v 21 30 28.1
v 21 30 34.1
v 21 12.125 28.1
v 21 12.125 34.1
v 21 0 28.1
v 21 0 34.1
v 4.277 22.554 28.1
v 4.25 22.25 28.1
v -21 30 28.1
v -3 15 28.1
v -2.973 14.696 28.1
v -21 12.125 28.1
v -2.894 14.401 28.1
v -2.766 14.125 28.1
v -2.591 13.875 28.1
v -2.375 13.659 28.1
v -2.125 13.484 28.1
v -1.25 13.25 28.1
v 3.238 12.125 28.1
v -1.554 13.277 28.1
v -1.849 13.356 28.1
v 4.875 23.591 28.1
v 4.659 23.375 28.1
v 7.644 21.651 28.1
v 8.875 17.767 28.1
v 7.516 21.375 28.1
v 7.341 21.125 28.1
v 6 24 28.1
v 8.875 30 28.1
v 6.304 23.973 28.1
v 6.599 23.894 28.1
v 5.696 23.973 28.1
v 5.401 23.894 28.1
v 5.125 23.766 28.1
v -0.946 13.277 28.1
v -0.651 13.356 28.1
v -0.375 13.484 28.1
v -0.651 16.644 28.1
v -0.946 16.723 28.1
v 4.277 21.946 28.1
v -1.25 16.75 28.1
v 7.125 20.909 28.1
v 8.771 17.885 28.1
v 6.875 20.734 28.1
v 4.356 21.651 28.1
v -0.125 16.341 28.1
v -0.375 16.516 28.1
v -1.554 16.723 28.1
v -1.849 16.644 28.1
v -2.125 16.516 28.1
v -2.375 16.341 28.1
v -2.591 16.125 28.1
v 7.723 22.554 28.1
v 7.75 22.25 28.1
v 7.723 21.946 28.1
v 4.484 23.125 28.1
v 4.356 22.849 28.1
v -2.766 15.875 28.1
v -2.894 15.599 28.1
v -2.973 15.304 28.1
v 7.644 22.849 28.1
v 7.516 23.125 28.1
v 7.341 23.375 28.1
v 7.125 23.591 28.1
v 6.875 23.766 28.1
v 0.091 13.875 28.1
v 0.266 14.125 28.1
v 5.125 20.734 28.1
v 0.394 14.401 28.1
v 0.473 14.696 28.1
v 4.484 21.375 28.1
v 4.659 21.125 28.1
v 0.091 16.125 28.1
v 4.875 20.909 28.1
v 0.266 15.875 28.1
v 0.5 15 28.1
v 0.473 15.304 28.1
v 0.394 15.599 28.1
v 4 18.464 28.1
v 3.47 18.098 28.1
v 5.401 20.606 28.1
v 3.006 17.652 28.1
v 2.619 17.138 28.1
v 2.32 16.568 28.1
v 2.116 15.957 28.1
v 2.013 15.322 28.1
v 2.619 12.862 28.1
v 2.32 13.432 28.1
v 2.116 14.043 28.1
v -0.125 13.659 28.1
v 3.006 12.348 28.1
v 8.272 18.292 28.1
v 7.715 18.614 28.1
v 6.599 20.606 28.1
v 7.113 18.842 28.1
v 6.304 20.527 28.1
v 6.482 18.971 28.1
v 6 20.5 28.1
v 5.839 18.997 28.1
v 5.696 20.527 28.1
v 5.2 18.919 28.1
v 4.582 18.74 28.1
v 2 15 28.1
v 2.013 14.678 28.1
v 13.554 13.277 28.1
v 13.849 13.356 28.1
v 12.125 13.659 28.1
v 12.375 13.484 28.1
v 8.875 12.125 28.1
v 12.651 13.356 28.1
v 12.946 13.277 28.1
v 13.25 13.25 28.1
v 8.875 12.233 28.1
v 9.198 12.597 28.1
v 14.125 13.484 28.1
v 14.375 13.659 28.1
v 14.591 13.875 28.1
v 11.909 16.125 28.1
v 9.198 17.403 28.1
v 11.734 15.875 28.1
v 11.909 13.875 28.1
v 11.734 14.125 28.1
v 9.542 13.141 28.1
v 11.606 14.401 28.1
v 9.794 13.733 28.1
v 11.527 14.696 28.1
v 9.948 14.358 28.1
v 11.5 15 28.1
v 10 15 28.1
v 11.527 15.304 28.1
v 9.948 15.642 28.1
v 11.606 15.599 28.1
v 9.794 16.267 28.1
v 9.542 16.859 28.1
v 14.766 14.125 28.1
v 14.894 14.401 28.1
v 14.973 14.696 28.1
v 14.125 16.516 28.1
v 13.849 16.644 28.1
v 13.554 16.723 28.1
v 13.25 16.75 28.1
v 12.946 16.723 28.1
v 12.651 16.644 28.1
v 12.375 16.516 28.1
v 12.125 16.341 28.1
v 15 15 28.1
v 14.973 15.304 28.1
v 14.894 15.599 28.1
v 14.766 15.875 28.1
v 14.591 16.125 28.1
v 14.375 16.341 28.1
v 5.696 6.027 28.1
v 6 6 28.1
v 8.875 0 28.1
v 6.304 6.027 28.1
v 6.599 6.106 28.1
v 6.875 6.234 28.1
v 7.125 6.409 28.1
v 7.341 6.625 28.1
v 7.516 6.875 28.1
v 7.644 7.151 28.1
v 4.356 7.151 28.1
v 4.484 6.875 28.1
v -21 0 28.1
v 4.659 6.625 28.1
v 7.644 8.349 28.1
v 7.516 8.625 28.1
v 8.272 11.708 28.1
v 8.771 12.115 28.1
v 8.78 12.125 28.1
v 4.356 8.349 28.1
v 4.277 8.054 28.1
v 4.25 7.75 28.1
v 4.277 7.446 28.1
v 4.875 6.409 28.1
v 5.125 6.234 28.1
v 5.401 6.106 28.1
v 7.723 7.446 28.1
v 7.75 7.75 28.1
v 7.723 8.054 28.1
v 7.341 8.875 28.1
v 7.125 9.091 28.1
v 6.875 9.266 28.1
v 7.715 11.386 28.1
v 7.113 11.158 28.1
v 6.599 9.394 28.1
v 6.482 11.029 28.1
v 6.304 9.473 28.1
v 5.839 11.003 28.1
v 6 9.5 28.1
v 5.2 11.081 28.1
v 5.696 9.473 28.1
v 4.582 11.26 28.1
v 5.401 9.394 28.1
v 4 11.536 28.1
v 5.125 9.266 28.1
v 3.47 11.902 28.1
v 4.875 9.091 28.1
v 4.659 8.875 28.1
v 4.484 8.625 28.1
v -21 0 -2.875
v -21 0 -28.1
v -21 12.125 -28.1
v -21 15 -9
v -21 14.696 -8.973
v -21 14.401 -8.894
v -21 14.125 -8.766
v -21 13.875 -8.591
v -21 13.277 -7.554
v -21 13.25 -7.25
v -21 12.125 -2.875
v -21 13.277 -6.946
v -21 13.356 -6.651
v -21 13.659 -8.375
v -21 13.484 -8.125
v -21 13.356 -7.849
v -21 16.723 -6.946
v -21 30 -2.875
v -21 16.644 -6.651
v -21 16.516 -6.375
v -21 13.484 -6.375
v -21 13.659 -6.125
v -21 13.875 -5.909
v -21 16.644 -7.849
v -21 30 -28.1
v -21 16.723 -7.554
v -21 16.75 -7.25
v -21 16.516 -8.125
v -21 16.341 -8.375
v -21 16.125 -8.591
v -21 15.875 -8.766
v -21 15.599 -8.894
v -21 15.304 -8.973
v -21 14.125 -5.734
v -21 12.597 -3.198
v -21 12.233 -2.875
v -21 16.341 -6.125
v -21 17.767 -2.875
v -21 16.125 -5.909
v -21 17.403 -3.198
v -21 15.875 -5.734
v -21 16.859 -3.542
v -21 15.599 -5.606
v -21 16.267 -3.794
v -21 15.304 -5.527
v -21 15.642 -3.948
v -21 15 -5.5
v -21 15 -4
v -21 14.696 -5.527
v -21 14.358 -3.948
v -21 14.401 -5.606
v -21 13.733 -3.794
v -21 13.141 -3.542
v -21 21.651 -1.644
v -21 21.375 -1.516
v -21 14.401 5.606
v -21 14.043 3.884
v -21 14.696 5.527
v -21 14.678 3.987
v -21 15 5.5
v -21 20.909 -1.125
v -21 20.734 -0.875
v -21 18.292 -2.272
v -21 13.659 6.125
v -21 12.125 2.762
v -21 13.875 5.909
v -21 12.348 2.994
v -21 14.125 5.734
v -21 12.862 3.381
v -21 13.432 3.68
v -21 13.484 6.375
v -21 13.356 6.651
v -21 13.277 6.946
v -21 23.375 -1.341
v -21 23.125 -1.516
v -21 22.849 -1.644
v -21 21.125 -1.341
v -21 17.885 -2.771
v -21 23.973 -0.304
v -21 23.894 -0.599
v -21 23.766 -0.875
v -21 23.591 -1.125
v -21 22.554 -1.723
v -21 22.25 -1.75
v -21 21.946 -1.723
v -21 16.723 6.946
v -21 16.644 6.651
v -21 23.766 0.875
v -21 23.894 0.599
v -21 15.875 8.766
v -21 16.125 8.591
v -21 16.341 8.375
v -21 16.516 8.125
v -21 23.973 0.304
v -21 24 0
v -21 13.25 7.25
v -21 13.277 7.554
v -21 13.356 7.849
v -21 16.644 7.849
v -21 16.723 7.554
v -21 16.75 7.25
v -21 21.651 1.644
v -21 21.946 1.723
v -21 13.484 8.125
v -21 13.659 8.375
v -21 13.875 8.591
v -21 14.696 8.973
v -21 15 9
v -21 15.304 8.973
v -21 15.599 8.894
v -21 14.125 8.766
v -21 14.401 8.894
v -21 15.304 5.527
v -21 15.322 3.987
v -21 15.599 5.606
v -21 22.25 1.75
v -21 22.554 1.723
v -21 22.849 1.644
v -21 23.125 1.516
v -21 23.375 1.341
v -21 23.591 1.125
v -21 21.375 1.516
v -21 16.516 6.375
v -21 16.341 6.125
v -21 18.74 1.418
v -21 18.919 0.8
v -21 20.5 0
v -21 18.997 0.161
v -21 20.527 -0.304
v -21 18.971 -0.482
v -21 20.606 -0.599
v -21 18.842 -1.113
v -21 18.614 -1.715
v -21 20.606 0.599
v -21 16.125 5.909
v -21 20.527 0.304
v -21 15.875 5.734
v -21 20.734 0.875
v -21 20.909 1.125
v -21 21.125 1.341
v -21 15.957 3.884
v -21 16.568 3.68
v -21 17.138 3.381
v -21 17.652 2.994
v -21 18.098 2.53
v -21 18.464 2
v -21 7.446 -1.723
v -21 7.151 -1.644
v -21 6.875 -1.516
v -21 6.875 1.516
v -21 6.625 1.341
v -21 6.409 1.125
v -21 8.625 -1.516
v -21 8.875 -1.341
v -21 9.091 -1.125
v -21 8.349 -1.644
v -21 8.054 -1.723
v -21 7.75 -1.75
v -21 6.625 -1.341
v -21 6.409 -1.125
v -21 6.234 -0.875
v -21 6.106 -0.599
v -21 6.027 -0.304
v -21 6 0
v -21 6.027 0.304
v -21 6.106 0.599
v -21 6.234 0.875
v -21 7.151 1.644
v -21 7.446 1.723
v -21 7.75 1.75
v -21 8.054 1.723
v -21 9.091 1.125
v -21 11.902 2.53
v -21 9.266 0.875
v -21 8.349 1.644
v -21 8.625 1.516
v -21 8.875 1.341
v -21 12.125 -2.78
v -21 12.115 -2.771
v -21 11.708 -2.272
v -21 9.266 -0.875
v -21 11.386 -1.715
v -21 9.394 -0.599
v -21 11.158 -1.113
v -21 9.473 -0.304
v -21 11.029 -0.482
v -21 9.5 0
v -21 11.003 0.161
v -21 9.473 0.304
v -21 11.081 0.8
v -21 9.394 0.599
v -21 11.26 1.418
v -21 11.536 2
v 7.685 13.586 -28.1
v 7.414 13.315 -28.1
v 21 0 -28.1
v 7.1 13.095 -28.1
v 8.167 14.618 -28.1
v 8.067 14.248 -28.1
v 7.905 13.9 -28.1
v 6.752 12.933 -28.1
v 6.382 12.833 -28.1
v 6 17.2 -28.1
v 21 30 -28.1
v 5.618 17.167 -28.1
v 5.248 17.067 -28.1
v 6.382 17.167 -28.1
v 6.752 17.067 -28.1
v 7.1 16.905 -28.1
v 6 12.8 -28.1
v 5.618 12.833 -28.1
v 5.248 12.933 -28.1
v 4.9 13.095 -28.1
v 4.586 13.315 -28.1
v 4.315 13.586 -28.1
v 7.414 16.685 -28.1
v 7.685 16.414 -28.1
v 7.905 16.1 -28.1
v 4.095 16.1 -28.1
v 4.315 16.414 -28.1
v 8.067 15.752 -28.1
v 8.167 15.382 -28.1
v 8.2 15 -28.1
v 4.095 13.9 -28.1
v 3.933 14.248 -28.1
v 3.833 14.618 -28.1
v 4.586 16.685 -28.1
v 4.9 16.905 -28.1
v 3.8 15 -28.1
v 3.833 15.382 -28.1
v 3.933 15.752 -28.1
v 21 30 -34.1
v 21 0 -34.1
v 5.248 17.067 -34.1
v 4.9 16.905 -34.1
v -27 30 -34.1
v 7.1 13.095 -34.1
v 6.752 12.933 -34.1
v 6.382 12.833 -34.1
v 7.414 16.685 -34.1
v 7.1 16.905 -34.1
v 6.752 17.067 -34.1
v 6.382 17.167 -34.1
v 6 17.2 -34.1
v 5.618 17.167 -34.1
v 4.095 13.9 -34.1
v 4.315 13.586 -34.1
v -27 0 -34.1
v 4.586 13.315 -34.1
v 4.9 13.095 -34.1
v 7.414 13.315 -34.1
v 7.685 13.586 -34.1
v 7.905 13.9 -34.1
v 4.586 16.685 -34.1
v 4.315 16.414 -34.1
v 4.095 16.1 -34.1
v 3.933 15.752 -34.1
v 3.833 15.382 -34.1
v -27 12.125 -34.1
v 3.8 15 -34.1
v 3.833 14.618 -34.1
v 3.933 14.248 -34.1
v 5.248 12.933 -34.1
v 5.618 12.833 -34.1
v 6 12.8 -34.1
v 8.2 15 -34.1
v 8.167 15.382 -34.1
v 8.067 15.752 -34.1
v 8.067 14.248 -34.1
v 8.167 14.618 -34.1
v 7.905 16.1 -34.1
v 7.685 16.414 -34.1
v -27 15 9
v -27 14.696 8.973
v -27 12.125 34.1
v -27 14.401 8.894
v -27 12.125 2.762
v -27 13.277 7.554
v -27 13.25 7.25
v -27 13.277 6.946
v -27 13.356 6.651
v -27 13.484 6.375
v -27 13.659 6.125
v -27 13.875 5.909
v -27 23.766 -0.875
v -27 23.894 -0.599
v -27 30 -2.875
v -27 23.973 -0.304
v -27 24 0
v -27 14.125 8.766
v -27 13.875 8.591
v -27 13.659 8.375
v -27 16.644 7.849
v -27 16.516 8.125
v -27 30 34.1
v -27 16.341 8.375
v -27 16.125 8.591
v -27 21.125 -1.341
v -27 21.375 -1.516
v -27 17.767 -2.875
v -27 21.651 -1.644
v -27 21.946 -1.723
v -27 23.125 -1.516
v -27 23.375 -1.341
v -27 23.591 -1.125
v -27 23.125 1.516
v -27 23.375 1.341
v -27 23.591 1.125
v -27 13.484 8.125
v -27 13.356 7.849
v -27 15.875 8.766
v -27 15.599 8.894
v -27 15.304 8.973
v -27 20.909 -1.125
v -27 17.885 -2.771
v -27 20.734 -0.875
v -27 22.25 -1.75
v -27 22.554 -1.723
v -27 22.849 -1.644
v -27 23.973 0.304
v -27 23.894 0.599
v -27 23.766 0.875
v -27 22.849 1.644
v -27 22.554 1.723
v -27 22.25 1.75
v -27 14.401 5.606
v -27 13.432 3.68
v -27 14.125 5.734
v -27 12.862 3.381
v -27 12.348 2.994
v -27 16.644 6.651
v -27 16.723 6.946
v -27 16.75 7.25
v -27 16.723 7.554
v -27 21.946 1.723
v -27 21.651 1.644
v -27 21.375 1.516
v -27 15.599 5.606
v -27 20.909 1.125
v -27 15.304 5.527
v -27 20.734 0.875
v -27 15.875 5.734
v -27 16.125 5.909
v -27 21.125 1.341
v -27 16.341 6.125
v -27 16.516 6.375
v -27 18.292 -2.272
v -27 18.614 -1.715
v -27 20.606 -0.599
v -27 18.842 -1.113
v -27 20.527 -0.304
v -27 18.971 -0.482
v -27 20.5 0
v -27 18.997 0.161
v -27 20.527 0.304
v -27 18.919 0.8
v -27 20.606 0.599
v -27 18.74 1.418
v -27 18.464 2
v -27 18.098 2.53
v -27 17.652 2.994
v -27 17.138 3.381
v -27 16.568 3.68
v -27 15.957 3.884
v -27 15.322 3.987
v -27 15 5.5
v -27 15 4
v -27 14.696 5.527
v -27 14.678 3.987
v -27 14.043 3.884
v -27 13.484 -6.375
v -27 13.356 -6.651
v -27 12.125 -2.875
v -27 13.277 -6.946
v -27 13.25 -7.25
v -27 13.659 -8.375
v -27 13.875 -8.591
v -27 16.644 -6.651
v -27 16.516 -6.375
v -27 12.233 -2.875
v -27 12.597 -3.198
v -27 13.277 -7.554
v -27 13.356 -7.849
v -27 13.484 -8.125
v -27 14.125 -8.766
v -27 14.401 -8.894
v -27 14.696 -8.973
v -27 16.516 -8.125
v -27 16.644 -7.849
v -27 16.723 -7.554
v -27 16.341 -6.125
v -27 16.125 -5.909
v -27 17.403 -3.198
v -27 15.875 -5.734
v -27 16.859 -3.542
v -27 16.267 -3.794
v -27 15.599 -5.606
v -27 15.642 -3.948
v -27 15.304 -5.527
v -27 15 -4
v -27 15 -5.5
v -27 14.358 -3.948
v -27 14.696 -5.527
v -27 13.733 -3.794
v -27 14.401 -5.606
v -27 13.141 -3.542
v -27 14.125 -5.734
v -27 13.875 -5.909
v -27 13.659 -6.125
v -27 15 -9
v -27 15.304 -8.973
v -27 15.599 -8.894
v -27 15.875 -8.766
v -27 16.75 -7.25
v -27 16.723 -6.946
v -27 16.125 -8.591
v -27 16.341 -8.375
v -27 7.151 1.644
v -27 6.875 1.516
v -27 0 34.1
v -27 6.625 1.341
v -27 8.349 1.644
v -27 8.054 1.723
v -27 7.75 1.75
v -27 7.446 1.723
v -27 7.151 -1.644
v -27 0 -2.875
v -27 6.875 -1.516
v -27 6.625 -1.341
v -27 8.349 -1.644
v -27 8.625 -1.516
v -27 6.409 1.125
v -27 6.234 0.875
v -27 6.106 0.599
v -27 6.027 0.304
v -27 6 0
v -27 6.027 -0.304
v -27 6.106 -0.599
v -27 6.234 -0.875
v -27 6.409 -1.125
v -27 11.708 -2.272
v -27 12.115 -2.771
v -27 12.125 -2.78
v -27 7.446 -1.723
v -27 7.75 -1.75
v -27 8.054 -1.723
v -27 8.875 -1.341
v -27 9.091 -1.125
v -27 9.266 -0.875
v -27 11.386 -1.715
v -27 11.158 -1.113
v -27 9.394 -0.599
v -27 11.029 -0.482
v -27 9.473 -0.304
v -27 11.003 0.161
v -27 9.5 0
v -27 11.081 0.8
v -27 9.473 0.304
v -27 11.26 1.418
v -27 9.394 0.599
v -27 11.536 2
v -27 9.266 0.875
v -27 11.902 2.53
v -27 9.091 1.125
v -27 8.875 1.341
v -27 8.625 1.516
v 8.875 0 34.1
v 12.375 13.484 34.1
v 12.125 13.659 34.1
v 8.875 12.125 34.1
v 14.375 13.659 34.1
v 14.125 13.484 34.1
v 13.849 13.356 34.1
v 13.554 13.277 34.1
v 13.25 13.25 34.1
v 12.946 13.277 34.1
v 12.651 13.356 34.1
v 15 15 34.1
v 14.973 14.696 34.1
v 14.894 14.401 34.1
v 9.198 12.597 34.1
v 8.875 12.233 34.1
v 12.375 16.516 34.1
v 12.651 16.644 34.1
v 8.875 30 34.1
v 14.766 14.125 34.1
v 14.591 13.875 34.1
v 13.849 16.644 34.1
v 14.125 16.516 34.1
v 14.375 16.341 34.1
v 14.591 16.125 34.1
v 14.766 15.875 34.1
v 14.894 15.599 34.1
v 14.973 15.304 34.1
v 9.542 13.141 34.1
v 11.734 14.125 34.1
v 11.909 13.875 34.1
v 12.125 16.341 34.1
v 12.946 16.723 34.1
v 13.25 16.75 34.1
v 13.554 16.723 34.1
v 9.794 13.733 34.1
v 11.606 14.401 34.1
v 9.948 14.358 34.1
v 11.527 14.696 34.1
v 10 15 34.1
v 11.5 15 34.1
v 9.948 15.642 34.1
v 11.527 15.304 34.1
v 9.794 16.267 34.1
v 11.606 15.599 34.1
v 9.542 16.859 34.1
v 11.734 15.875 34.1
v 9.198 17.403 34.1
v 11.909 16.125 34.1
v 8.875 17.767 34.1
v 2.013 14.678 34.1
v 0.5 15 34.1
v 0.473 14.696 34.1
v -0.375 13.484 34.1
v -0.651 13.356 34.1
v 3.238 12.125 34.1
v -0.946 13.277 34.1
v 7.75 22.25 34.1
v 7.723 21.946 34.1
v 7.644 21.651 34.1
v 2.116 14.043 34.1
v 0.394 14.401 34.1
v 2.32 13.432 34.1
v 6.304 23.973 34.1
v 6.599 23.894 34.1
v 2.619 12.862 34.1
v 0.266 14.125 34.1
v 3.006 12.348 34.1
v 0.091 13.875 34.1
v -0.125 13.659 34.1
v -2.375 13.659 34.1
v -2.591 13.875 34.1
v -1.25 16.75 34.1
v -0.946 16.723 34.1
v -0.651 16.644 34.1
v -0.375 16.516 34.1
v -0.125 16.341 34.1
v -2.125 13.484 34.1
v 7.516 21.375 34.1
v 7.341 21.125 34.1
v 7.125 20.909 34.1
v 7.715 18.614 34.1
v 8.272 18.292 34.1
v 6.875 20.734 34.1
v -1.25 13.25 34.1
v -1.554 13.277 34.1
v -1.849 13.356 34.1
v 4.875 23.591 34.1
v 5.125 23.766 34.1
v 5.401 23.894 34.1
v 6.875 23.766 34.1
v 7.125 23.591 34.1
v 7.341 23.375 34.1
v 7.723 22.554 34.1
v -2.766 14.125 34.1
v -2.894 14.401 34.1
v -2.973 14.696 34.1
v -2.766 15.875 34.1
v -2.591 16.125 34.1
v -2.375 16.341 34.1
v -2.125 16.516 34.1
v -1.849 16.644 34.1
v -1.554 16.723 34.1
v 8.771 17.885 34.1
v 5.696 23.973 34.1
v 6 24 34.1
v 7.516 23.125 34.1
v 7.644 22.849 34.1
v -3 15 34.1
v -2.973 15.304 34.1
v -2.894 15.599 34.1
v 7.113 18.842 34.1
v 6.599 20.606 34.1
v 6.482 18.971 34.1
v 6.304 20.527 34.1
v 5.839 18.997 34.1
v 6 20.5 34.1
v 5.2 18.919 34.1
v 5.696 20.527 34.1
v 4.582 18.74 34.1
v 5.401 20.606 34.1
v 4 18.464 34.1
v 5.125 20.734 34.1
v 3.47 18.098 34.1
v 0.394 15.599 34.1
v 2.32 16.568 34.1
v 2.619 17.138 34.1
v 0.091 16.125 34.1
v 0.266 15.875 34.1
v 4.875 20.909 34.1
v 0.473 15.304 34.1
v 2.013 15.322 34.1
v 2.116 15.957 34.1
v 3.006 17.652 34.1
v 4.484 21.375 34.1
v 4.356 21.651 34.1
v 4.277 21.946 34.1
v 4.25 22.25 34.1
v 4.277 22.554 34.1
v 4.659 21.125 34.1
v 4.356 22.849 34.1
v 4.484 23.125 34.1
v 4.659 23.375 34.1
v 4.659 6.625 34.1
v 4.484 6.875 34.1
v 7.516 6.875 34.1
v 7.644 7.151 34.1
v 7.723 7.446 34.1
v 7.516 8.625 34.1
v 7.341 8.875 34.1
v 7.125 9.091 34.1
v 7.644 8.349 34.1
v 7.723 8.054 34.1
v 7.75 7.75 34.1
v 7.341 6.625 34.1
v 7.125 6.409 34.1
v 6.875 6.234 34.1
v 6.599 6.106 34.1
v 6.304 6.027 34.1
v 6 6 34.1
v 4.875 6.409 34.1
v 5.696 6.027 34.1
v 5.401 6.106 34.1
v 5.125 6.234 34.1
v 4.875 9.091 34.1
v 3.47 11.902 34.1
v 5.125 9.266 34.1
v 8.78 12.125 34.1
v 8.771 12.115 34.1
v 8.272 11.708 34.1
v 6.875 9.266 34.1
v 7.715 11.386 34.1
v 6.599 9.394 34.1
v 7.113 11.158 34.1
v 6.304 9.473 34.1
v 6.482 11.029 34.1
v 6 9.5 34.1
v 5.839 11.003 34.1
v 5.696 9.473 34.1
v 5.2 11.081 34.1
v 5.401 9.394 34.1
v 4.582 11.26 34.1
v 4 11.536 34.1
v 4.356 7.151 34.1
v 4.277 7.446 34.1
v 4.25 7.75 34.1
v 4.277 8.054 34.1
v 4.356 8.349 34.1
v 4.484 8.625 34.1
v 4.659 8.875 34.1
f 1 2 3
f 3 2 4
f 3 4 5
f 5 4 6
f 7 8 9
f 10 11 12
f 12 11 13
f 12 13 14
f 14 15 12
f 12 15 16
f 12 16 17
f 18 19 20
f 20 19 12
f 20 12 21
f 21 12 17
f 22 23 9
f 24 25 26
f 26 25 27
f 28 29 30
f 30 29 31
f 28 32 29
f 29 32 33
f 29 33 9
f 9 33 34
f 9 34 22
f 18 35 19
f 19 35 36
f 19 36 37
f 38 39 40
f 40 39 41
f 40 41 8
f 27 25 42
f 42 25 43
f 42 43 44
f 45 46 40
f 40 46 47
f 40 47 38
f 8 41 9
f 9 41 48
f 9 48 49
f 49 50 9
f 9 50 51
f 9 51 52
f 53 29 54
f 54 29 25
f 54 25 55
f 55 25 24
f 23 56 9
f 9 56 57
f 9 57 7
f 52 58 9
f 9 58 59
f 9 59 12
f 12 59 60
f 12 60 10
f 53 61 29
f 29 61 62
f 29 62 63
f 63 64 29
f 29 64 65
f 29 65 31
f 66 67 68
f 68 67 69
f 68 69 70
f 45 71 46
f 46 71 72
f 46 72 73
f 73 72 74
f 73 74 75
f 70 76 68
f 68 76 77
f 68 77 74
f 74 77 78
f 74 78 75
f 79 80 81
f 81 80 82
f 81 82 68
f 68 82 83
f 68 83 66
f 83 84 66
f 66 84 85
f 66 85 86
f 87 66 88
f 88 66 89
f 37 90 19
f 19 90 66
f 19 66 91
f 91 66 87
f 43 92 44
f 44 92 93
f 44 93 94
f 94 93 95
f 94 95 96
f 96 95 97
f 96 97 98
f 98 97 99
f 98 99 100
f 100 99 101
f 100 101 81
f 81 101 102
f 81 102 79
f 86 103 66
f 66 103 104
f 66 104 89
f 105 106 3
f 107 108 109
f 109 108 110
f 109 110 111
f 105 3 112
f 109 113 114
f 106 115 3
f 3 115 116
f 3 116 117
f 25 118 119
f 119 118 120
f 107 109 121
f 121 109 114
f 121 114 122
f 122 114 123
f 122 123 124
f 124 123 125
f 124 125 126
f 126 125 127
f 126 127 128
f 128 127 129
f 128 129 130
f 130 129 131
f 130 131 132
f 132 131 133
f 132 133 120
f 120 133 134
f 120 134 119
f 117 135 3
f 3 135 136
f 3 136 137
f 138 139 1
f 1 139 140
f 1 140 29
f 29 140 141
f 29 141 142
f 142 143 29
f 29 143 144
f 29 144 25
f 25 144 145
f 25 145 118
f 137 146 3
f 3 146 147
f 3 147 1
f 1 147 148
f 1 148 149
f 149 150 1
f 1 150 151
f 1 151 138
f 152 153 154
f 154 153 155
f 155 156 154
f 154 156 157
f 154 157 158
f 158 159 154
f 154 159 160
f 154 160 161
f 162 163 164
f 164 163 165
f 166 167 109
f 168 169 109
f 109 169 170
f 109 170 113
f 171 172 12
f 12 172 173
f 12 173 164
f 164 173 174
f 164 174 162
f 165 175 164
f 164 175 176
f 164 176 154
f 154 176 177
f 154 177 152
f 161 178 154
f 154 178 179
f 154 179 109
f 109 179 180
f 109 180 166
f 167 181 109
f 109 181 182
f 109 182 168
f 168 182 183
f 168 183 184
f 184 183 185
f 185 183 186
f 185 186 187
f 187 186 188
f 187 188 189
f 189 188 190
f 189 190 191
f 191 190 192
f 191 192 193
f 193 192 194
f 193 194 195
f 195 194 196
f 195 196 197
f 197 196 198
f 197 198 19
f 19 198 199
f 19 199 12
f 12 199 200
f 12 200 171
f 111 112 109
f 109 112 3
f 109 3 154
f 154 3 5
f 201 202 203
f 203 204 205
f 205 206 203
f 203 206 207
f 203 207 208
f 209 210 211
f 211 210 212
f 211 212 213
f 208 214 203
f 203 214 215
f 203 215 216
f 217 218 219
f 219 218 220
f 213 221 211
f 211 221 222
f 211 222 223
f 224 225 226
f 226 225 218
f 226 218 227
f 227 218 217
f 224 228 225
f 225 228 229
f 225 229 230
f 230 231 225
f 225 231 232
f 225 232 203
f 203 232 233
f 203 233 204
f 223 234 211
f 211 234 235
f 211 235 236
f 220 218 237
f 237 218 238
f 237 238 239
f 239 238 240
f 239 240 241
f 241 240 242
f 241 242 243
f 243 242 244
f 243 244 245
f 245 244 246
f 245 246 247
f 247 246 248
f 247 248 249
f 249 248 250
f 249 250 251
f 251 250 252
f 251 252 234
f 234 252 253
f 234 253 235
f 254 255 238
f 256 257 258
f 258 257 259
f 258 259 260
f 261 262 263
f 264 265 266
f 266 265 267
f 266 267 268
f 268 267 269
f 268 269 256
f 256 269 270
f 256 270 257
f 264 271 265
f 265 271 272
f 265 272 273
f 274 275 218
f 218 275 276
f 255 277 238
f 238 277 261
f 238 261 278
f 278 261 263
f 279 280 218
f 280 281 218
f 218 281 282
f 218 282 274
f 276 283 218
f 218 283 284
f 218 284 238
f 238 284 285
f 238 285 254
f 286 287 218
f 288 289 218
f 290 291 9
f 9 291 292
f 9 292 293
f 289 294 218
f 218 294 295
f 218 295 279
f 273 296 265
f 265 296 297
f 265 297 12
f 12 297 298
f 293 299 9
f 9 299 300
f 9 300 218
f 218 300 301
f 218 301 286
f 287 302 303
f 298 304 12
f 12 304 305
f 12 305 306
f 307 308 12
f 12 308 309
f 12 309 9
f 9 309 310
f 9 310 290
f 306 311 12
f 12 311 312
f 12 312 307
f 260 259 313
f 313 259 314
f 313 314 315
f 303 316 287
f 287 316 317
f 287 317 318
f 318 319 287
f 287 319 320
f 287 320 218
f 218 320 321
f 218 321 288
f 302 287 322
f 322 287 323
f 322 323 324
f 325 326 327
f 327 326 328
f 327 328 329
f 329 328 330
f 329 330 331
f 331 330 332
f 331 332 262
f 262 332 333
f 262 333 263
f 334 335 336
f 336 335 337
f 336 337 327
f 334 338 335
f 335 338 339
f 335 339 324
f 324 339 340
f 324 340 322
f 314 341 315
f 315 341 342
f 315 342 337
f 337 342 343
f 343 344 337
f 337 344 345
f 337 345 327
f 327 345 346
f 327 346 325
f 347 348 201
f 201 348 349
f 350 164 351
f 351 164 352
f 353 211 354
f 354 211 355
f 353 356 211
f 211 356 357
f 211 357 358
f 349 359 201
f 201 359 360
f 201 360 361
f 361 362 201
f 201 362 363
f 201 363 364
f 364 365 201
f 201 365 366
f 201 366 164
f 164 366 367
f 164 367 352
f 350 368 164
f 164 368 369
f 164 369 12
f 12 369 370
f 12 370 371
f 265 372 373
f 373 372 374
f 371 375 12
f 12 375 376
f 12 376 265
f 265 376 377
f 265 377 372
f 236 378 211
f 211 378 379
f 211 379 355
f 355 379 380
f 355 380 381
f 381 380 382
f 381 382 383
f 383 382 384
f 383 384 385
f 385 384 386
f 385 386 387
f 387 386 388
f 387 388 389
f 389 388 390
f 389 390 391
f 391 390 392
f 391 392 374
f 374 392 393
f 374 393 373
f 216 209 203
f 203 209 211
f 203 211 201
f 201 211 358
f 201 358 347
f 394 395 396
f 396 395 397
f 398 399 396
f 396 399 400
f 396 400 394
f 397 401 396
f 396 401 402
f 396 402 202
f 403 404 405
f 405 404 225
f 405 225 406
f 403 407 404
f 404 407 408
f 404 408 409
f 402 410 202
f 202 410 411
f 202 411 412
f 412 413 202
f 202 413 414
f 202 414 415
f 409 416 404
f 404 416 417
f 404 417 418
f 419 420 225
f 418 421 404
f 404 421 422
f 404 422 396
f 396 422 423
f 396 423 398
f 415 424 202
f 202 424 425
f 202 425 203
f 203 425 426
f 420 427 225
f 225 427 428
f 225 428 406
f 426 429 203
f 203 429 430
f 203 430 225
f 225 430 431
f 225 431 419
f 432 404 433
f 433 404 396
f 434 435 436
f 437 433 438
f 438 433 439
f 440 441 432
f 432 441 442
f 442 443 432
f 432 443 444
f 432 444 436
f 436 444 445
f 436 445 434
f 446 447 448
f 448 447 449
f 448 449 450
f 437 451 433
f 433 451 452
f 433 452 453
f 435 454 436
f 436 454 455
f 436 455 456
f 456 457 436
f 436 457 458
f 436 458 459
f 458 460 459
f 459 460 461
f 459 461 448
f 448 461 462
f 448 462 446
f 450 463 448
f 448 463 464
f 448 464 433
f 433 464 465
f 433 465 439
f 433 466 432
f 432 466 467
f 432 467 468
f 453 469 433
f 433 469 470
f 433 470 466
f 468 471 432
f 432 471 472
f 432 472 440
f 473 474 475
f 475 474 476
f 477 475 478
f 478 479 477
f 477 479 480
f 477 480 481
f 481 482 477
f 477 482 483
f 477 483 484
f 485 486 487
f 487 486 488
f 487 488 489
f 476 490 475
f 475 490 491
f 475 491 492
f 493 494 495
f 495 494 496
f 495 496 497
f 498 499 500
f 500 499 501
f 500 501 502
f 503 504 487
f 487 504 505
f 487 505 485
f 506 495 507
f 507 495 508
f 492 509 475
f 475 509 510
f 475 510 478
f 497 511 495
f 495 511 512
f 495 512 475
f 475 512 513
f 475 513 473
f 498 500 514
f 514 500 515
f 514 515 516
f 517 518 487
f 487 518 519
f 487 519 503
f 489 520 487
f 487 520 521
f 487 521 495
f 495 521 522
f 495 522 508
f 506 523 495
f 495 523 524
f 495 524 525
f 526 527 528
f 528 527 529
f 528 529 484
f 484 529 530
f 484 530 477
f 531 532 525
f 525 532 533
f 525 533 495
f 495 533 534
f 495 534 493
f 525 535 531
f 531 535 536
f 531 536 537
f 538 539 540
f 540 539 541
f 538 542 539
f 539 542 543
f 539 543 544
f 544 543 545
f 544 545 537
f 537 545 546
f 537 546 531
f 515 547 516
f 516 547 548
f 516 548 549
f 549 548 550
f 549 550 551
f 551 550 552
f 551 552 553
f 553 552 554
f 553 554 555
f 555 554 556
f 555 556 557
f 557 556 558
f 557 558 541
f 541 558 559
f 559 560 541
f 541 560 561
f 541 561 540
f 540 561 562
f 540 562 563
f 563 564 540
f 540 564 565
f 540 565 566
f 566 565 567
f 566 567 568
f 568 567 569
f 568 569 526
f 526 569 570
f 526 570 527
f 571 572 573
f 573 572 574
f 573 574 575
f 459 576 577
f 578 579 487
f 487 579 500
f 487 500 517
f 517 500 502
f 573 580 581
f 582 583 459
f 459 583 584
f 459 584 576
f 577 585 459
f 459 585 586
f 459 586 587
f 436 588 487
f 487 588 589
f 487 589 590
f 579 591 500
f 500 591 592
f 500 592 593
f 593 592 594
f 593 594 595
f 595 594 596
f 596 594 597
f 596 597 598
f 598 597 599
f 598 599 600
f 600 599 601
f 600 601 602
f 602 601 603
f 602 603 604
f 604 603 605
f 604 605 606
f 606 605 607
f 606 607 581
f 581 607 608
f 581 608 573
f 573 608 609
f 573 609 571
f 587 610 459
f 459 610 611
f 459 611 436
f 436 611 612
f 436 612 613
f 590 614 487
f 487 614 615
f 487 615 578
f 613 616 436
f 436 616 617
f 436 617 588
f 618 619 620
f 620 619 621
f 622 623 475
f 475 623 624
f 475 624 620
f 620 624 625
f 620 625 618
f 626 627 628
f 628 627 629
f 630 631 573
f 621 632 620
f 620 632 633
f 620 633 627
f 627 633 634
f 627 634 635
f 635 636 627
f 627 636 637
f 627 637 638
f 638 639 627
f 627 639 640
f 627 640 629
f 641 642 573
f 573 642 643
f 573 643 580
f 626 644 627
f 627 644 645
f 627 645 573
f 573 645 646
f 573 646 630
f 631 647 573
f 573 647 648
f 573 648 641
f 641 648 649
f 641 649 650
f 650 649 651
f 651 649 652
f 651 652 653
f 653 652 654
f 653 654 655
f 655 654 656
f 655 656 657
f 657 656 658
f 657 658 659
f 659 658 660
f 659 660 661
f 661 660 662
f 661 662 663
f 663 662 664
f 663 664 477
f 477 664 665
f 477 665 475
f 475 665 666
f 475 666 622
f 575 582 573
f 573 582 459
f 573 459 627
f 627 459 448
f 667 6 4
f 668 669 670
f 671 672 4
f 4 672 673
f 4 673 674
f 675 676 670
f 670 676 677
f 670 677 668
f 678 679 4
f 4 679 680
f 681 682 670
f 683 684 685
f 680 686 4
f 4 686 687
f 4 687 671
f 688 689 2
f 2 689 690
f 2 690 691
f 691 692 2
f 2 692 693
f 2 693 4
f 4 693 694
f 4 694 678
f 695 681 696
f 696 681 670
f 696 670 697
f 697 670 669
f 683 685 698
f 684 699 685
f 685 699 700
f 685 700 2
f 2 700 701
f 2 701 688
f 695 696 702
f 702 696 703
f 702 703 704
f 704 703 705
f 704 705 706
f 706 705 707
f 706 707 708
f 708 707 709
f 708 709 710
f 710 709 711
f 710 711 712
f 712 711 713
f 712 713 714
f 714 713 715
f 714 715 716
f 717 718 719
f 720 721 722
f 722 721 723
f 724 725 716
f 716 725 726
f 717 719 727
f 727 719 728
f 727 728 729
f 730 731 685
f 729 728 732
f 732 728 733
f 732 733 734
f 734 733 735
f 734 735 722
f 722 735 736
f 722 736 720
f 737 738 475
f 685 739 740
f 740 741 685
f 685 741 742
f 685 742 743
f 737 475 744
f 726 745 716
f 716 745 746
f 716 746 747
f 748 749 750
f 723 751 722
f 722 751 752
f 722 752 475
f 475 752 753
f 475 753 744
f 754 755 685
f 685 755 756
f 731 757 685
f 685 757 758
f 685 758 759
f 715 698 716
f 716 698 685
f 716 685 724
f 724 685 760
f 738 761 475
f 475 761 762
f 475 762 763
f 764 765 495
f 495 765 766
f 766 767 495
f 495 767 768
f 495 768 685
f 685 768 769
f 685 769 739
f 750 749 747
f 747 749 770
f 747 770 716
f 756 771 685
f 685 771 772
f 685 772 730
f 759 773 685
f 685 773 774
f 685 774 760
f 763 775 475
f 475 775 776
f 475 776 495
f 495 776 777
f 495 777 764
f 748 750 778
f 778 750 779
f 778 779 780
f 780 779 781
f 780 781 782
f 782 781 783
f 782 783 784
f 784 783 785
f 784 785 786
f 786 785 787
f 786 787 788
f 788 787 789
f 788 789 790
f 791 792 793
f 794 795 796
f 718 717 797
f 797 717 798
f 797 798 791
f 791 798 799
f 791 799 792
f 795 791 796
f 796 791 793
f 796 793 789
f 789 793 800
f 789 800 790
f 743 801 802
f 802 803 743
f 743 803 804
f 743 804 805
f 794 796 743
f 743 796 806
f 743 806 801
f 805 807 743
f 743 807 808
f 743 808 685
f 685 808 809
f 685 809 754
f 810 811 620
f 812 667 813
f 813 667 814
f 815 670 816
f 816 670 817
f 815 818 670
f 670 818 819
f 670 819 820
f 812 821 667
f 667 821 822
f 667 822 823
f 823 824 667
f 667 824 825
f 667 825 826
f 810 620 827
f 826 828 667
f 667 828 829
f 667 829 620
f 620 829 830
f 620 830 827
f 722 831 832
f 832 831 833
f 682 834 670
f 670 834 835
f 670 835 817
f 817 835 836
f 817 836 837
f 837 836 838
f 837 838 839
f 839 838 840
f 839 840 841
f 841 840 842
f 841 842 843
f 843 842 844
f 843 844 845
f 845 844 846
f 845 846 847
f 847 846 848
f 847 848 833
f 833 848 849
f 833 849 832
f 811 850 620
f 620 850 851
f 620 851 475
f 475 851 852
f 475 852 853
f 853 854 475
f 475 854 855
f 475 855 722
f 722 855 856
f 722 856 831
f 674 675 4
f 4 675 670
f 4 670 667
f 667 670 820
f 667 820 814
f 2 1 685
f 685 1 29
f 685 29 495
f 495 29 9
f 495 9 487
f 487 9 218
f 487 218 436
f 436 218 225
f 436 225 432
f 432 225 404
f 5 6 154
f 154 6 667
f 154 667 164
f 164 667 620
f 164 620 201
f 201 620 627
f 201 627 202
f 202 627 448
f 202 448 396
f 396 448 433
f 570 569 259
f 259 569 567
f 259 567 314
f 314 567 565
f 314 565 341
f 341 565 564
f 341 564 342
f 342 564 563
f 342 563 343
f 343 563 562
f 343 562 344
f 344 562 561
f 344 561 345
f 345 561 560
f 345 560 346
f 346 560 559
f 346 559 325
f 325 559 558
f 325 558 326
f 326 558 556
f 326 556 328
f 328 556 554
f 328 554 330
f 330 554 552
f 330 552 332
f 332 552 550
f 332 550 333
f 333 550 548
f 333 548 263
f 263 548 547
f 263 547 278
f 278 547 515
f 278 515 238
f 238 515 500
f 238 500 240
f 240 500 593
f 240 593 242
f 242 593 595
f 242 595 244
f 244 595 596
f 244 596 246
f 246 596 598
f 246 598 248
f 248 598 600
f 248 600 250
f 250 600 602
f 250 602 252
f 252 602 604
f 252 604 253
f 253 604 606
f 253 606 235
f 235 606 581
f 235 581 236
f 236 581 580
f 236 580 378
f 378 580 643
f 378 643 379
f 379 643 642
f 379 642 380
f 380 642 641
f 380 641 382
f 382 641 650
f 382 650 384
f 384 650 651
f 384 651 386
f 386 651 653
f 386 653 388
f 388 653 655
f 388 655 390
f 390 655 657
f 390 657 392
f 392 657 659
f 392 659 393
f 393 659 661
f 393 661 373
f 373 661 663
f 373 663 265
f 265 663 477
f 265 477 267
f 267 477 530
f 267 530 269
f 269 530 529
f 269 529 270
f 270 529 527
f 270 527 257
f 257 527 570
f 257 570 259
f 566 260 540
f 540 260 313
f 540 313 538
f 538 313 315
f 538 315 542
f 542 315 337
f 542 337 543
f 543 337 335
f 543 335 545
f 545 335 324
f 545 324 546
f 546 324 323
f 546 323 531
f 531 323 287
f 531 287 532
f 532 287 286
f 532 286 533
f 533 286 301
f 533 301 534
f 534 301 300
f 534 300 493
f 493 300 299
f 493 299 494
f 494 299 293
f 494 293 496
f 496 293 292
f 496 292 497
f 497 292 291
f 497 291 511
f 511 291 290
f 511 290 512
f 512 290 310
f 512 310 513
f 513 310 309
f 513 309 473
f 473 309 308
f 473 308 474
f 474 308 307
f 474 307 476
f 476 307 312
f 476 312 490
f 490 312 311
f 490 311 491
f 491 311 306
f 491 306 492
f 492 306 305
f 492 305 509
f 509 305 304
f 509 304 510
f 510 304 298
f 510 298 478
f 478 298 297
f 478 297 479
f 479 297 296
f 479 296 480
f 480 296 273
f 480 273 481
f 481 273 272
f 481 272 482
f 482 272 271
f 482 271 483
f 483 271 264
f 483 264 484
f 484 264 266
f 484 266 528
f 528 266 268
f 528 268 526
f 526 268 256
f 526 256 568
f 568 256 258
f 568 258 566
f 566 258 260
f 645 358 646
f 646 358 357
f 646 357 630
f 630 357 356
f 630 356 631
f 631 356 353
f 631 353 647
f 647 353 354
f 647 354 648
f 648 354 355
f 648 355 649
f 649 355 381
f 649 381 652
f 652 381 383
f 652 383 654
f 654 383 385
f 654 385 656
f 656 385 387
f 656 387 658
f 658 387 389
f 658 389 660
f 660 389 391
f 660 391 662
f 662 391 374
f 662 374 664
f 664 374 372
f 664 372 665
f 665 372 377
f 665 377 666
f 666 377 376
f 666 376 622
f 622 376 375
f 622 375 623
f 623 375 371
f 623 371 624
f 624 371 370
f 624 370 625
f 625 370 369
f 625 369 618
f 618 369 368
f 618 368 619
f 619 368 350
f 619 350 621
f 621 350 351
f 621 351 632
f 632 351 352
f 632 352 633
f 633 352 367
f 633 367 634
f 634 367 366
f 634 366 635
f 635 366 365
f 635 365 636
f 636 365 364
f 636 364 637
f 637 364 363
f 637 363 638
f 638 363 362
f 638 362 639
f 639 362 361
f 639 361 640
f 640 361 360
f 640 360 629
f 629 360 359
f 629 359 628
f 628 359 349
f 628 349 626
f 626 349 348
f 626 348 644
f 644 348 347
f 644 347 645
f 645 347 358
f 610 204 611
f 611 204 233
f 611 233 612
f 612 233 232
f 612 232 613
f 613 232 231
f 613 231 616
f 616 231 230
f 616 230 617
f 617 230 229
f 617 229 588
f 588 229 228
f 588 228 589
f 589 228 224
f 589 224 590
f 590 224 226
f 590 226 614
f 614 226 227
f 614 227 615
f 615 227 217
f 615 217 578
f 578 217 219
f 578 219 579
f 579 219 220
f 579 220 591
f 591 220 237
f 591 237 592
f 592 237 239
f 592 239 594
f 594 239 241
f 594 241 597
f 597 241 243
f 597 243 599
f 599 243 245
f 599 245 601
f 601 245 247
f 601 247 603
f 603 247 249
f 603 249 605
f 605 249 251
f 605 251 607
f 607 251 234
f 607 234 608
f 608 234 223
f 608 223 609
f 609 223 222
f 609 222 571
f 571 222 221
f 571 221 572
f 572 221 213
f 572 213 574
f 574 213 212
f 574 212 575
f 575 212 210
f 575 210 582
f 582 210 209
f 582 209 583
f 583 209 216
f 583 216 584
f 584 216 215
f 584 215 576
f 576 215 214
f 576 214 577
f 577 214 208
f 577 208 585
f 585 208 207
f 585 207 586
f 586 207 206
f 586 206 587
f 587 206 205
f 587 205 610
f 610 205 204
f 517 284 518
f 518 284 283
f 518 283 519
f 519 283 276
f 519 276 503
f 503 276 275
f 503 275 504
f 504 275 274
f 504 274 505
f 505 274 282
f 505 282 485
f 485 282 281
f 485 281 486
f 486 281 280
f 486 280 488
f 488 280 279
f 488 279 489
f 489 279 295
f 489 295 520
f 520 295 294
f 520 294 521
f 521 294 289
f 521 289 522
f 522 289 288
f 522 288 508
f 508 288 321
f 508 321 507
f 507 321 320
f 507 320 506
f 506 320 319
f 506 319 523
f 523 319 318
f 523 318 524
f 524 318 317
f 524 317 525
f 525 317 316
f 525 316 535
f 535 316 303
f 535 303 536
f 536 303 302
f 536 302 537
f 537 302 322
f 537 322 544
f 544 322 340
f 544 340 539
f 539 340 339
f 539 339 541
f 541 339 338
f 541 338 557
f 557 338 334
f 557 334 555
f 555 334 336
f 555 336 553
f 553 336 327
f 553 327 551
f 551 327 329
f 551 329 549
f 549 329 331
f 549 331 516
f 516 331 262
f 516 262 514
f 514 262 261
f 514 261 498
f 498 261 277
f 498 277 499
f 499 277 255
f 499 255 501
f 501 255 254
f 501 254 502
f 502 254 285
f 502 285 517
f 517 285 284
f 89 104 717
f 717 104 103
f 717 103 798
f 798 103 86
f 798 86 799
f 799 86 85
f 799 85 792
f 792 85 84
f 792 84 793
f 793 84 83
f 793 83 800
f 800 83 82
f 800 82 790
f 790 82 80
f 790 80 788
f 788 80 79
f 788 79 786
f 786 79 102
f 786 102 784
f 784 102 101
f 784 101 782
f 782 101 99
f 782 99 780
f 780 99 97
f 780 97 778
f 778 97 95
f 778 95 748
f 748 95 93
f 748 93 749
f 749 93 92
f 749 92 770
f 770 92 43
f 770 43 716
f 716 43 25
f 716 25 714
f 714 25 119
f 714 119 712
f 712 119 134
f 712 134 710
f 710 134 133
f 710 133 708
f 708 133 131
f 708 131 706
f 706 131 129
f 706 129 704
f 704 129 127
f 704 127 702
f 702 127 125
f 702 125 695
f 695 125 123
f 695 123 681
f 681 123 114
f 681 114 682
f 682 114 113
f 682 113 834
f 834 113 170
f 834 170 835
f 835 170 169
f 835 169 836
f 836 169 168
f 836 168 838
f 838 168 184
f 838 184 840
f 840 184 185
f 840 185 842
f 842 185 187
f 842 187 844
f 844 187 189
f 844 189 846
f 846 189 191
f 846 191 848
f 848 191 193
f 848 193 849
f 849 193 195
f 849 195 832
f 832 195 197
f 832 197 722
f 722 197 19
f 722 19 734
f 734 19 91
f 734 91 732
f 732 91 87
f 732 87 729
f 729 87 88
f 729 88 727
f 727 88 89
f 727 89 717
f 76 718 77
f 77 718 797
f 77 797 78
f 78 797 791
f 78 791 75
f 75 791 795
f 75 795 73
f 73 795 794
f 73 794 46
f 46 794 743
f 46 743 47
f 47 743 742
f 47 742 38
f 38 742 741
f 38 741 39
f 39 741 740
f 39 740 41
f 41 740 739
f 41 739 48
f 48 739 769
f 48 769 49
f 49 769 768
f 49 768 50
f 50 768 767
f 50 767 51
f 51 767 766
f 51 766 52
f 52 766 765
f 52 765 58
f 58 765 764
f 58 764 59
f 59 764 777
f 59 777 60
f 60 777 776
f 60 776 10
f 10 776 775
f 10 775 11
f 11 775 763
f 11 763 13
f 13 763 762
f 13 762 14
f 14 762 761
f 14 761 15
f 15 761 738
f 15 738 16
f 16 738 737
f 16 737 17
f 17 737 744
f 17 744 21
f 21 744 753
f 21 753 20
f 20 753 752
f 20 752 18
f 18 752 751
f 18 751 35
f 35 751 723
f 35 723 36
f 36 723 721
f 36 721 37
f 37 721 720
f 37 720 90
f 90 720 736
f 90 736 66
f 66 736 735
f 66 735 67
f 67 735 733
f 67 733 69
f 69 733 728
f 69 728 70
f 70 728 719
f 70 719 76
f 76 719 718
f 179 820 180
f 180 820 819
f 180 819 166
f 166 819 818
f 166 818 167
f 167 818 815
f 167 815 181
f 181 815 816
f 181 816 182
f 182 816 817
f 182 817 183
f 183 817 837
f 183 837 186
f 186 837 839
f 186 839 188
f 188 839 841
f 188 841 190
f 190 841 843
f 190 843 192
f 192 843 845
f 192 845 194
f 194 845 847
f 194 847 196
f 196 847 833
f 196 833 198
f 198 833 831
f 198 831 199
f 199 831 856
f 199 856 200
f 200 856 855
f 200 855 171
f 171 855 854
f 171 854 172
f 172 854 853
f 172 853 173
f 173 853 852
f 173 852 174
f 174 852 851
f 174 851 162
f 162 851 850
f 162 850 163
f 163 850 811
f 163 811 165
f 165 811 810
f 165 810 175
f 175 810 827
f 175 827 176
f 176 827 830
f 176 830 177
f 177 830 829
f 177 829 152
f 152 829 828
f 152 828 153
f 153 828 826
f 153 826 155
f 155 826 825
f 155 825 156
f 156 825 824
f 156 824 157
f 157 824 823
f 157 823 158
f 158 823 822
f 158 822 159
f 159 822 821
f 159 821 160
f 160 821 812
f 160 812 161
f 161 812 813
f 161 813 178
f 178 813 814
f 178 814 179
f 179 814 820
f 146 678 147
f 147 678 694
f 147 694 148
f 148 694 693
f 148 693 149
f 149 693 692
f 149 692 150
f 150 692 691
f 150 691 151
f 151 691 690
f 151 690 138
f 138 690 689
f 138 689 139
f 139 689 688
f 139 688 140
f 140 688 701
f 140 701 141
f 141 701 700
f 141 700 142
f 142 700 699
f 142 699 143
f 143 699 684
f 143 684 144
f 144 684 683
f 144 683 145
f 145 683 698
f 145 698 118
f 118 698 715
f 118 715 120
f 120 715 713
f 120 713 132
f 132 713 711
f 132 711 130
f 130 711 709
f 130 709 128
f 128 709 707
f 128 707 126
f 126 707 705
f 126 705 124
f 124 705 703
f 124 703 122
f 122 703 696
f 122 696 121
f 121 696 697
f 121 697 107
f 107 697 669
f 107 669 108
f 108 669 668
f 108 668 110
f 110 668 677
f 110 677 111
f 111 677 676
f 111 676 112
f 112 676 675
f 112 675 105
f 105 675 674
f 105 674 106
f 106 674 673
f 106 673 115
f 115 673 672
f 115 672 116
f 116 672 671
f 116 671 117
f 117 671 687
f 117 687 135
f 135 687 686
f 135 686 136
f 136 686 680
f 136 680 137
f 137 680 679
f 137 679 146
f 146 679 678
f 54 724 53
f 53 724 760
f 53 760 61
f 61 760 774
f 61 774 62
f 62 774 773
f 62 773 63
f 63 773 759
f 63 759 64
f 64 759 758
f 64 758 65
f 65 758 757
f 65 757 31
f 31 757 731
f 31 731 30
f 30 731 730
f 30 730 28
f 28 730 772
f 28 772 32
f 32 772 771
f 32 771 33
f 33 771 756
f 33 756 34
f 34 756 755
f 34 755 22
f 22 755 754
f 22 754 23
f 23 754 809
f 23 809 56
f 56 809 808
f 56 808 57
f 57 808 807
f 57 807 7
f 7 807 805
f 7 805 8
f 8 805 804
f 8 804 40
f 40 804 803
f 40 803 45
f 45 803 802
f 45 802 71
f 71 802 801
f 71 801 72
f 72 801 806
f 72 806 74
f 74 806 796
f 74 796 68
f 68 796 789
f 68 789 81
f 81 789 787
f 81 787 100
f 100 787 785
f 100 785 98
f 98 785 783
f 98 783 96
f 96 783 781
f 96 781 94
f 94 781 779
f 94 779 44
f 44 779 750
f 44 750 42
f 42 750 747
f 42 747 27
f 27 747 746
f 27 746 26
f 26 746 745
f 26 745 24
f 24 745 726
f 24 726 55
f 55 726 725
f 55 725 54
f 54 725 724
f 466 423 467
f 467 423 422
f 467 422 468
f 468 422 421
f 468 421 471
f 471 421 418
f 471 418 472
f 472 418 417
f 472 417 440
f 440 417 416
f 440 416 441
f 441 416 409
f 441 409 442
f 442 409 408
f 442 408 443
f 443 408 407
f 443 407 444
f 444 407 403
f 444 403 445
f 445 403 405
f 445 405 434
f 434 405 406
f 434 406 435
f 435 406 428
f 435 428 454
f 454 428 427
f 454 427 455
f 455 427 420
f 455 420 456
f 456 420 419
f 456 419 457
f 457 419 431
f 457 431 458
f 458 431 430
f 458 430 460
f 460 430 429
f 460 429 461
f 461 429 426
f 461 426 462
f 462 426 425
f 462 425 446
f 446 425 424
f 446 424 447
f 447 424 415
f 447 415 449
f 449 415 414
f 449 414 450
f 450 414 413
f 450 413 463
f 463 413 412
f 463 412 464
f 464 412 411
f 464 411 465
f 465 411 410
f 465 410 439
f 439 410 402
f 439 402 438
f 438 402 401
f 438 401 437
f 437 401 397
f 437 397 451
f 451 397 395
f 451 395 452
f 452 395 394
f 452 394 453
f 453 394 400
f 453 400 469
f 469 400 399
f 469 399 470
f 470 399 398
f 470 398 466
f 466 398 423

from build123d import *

# Parameters (mm, degrees)
BOSS_EXTRUDE1_DEPTH            = 30
CUT_EXTRUDE1_REACH             = 63.861
SKETCH2_R                      = 4
SKETCH2_R_2                    = 1.75
CUT_EXTRUDE2_REACH             = 81.248
SKETCH3_R                      = 4
CUT_EXTRUDE3_REACH             = 81.248
SKETCH4_R                      = 1.75
CUT_EXTRUDE4_REACH             = 81.248
SKETCH5_R                      = 2.2
CUT_EXTRUDE4_DIRECTION_2_DEPTH = 80.247965274


with BuildPart() as part:
    # Sketch1 → Boss-Extrude1 (new body)
    with BuildSketch(Plane(origin=(0, 0, 0), x_dir=(1, 0, 0), z_dir=(0, 1, 0))):
        Polygon((21, -28.1), (21, -34.1), (-27, -34.1), (-27, 34.1), (21, 34.1), (21, 28.1), (-21, 28.1), (-21, -28.1), align=None)
    extrude(amount=BOSS_EXTRUDE1_DEPTH)

    # Sketch2 → Cut-Extrude1 (cut, up to next)
    with BuildSketch(Plane(origin=(-21, 0, 0), x_dir=(0, 0, -1), z_dir=(1, 0, 0)), mode=Mode.PRIVATE) as cut_extrude1_sk1:
        with Locations((0, 15)):
            Circle(SKETCH2_R)
    cut_extrude1_tool1 = extrude(cut_extrude1_sk1.sketch, amount=-CUT_EXTRUDE1_REACH, mode=Mode.PRIVATE) & part.part
    # Sketch2 → Cut-Extrude1 (cut, up to next)
    with BuildSketch(Plane(origin=(-21, 0, 0), x_dir=(0, 0, -1), z_dir=(1, 0, 0)), mode=Mode.PRIVATE) as cut_extrude1_sk2:
        with Locations((0, 22.25)):
            Circle(SKETCH2_R_2)
    cut_extrude1_tool2 = extrude(cut_extrude1_sk2.sketch, amount=-CUT_EXTRUDE1_REACH, mode=Mode.PRIVATE) & part.part
    # Sketch2 → Cut-Extrude1 (cut, up to next)
    with BuildSketch(Plane(origin=(-21, 0, 0), x_dir=(0, 0, -1), z_dir=(1, 0, 0)), mode=Mode.PRIVATE) as cut_extrude1_sk3:
        with Locations((7.25, 15)):
            Circle(SKETCH2_R_2)
    cut_extrude1_tool3 = extrude(cut_extrude1_sk3.sketch, amount=-CUT_EXTRUDE1_REACH, mode=Mode.PRIVATE) & part.part
    # Sketch2 → Cut-Extrude1 (cut, up to next)
    with BuildSketch(Plane(origin=(-21, 0, 0), x_dir=(0, 0, -1), z_dir=(1, 0, 0)), mode=Mode.PRIVATE) as cut_extrude1_sk4:
        with Locations((0, 7.75)):
            Circle(SKETCH2_R_2)
    cut_extrude1_tool4 = extrude(cut_extrude1_sk4.sketch, amount=-CUT_EXTRUDE1_REACH, mode=Mode.PRIVATE) & part.part
    # Sketch2 → Cut-Extrude1 (cut, up to next)
    with BuildSketch(Plane(origin=(-21, 0, 0), x_dir=(0, 0, -1), z_dir=(1, 0, 0)), mode=Mode.PRIVATE) as cut_extrude1_sk5:
        with Locations((-7.25, 15)):
            Circle(SKETCH2_R_2)
    cut_extrude1_tool5 = extrude(cut_extrude1_sk5.sketch, amount=-CUT_EXTRUDE1_REACH, mode=Mode.PRIVATE) & part.part
    add(cut_extrude1_tool1.solids().sort_by_distance((-21, 15, 0))[0], mode=Mode.SUBTRACT)
    add(cut_extrude1_tool2.solids().sort_by_distance((-21, 22.25, 0))[0], mode=Mode.SUBTRACT)
    add(cut_extrude1_tool3.solids().sort_by_distance((-21, 15, -7.25))[0], mode=Mode.SUBTRACT)
    add(cut_extrude1_tool4.solids().sort_by_distance((-21, 7.75, 0))[0], mode=Mode.SUBTRACT)
    add(cut_extrude1_tool5.solids().sort_by_distance((-21, 15, 7.25))[0], mode=Mode.SUBTRACT)

    # Sketch3 → Cut-Extrude2 (cut, up to next)
    with BuildSketch(Plane.XY.offset(34.1), mode=Mode.PRIVATE) as cut_extrude2_sk1:
        with Locations((6, 15)):
            Circle(SKETCH3_R)
    cut_extrude2_tool1 = extrude(cut_extrude2_sk1.sketch, amount=-CUT_EXTRUDE2_REACH, mode=Mode.PRIVATE) & part.part
    add(cut_extrude2_tool1.solids().sort_by_distance((6, 15, 34.1))[0], mode=Mode.SUBTRACT)

    # Sketch4 → Cut-Extrude3 (cut, up to next)
    with BuildSketch(Plane.XY.offset(34.1), mode=Mode.PRIVATE) as cut_extrude3_sk1:
        with Locations((6, 22.25)):
            Circle(SKETCH4_R)
    cut_extrude3_tool1 = extrude(cut_extrude3_sk1.sketch, amount=-CUT_EXTRUDE3_REACH, mode=Mode.PRIVATE) & part.part
    # Sketch4 → Cut-Extrude3 (cut, up to next)
    with BuildSketch(Plane.XY.offset(34.1), mode=Mode.PRIVATE) as cut_extrude3_sk2:
        with Locations((13.25, 15)):
            Circle(SKETCH4_R)
    cut_extrude3_tool2 = extrude(cut_extrude3_sk2.sketch, amount=-CUT_EXTRUDE3_REACH, mode=Mode.PRIVATE) & part.part
    # Sketch4 → Cut-Extrude3 (cut, up to next)
    with BuildSketch(Plane.XY.offset(34.1), mode=Mode.PRIVATE) as cut_extrude3_sk3:
        with Locations((6, 7.75)):
            Circle(SKETCH4_R)
    cut_extrude3_tool3 = extrude(cut_extrude3_sk3.sketch, amount=-CUT_EXTRUDE3_REACH, mode=Mode.PRIVATE) & part.part
    # Sketch4 → Cut-Extrude3 (cut, up to next)
    with BuildSketch(Plane.XY.offset(34.1), mode=Mode.PRIVATE) as cut_extrude3_sk4:
        with Locations((-1.25, 15)):
            Circle(SKETCH4_R)
    cut_extrude3_tool4 = extrude(cut_extrude3_sk4.sketch, amount=-CUT_EXTRUDE3_REACH, mode=Mode.PRIVATE) & part.part
    add(cut_extrude3_tool1.solids().sort_by_distance((6, 22.25, 34.1))[0], mode=Mode.SUBTRACT)
    add(cut_extrude3_tool2.solids().sort_by_distance((13.25, 15, 34.1))[0], mode=Mode.SUBTRACT)
    add(cut_extrude3_tool3.solids().sort_by_distance((6, 7.75, 34.1))[0], mode=Mode.SUBTRACT)
    add(cut_extrude3_tool4.solids().sort_by_distance((-1.25, 15, 34.1))[0], mode=Mode.SUBTRACT)

    # Sketch5 → Cut-Extrude4 (cut, up to next)
    with BuildSketch(Plane(origin=(0, 0, -34.1), x_dir=(-1, 0, 0), z_dir=(0, 0, -1)), mode=Mode.PRIVATE) as cut_extrude4_sk1:
        with Locations(Location((-6, 15, 0), (0, 0, 180))):
            Circle(SKETCH5_R)
    cut_extrude4_tool1 = extrude(cut_extrude4_sk1.sketch, amount=-CUT_EXTRUDE4_REACH, mode=Mode.PRIVATE) & part.part
    add(cut_extrude4_tool1.solids().sort_by_distance((6, 15, -34.1))[0], mode=Mode.SUBTRACT)

    # Sketch5 → Cut-Extrude4 direction 2 (cut)
    with BuildSketch(Plane(origin=(0, 0, -34.1), x_dir=(-1, 0, 0), z_dir=(0, 0, -1))):
        with Locations(Location((-6, 15, 0), (0, 0, 180))):
            Circle(SKETCH5_R)
    extrude(amount=CUT_EXTRUDE4_DIRECTION_2_DEPTH, mode=Mode.SUBTRACT)


solid = part.part
